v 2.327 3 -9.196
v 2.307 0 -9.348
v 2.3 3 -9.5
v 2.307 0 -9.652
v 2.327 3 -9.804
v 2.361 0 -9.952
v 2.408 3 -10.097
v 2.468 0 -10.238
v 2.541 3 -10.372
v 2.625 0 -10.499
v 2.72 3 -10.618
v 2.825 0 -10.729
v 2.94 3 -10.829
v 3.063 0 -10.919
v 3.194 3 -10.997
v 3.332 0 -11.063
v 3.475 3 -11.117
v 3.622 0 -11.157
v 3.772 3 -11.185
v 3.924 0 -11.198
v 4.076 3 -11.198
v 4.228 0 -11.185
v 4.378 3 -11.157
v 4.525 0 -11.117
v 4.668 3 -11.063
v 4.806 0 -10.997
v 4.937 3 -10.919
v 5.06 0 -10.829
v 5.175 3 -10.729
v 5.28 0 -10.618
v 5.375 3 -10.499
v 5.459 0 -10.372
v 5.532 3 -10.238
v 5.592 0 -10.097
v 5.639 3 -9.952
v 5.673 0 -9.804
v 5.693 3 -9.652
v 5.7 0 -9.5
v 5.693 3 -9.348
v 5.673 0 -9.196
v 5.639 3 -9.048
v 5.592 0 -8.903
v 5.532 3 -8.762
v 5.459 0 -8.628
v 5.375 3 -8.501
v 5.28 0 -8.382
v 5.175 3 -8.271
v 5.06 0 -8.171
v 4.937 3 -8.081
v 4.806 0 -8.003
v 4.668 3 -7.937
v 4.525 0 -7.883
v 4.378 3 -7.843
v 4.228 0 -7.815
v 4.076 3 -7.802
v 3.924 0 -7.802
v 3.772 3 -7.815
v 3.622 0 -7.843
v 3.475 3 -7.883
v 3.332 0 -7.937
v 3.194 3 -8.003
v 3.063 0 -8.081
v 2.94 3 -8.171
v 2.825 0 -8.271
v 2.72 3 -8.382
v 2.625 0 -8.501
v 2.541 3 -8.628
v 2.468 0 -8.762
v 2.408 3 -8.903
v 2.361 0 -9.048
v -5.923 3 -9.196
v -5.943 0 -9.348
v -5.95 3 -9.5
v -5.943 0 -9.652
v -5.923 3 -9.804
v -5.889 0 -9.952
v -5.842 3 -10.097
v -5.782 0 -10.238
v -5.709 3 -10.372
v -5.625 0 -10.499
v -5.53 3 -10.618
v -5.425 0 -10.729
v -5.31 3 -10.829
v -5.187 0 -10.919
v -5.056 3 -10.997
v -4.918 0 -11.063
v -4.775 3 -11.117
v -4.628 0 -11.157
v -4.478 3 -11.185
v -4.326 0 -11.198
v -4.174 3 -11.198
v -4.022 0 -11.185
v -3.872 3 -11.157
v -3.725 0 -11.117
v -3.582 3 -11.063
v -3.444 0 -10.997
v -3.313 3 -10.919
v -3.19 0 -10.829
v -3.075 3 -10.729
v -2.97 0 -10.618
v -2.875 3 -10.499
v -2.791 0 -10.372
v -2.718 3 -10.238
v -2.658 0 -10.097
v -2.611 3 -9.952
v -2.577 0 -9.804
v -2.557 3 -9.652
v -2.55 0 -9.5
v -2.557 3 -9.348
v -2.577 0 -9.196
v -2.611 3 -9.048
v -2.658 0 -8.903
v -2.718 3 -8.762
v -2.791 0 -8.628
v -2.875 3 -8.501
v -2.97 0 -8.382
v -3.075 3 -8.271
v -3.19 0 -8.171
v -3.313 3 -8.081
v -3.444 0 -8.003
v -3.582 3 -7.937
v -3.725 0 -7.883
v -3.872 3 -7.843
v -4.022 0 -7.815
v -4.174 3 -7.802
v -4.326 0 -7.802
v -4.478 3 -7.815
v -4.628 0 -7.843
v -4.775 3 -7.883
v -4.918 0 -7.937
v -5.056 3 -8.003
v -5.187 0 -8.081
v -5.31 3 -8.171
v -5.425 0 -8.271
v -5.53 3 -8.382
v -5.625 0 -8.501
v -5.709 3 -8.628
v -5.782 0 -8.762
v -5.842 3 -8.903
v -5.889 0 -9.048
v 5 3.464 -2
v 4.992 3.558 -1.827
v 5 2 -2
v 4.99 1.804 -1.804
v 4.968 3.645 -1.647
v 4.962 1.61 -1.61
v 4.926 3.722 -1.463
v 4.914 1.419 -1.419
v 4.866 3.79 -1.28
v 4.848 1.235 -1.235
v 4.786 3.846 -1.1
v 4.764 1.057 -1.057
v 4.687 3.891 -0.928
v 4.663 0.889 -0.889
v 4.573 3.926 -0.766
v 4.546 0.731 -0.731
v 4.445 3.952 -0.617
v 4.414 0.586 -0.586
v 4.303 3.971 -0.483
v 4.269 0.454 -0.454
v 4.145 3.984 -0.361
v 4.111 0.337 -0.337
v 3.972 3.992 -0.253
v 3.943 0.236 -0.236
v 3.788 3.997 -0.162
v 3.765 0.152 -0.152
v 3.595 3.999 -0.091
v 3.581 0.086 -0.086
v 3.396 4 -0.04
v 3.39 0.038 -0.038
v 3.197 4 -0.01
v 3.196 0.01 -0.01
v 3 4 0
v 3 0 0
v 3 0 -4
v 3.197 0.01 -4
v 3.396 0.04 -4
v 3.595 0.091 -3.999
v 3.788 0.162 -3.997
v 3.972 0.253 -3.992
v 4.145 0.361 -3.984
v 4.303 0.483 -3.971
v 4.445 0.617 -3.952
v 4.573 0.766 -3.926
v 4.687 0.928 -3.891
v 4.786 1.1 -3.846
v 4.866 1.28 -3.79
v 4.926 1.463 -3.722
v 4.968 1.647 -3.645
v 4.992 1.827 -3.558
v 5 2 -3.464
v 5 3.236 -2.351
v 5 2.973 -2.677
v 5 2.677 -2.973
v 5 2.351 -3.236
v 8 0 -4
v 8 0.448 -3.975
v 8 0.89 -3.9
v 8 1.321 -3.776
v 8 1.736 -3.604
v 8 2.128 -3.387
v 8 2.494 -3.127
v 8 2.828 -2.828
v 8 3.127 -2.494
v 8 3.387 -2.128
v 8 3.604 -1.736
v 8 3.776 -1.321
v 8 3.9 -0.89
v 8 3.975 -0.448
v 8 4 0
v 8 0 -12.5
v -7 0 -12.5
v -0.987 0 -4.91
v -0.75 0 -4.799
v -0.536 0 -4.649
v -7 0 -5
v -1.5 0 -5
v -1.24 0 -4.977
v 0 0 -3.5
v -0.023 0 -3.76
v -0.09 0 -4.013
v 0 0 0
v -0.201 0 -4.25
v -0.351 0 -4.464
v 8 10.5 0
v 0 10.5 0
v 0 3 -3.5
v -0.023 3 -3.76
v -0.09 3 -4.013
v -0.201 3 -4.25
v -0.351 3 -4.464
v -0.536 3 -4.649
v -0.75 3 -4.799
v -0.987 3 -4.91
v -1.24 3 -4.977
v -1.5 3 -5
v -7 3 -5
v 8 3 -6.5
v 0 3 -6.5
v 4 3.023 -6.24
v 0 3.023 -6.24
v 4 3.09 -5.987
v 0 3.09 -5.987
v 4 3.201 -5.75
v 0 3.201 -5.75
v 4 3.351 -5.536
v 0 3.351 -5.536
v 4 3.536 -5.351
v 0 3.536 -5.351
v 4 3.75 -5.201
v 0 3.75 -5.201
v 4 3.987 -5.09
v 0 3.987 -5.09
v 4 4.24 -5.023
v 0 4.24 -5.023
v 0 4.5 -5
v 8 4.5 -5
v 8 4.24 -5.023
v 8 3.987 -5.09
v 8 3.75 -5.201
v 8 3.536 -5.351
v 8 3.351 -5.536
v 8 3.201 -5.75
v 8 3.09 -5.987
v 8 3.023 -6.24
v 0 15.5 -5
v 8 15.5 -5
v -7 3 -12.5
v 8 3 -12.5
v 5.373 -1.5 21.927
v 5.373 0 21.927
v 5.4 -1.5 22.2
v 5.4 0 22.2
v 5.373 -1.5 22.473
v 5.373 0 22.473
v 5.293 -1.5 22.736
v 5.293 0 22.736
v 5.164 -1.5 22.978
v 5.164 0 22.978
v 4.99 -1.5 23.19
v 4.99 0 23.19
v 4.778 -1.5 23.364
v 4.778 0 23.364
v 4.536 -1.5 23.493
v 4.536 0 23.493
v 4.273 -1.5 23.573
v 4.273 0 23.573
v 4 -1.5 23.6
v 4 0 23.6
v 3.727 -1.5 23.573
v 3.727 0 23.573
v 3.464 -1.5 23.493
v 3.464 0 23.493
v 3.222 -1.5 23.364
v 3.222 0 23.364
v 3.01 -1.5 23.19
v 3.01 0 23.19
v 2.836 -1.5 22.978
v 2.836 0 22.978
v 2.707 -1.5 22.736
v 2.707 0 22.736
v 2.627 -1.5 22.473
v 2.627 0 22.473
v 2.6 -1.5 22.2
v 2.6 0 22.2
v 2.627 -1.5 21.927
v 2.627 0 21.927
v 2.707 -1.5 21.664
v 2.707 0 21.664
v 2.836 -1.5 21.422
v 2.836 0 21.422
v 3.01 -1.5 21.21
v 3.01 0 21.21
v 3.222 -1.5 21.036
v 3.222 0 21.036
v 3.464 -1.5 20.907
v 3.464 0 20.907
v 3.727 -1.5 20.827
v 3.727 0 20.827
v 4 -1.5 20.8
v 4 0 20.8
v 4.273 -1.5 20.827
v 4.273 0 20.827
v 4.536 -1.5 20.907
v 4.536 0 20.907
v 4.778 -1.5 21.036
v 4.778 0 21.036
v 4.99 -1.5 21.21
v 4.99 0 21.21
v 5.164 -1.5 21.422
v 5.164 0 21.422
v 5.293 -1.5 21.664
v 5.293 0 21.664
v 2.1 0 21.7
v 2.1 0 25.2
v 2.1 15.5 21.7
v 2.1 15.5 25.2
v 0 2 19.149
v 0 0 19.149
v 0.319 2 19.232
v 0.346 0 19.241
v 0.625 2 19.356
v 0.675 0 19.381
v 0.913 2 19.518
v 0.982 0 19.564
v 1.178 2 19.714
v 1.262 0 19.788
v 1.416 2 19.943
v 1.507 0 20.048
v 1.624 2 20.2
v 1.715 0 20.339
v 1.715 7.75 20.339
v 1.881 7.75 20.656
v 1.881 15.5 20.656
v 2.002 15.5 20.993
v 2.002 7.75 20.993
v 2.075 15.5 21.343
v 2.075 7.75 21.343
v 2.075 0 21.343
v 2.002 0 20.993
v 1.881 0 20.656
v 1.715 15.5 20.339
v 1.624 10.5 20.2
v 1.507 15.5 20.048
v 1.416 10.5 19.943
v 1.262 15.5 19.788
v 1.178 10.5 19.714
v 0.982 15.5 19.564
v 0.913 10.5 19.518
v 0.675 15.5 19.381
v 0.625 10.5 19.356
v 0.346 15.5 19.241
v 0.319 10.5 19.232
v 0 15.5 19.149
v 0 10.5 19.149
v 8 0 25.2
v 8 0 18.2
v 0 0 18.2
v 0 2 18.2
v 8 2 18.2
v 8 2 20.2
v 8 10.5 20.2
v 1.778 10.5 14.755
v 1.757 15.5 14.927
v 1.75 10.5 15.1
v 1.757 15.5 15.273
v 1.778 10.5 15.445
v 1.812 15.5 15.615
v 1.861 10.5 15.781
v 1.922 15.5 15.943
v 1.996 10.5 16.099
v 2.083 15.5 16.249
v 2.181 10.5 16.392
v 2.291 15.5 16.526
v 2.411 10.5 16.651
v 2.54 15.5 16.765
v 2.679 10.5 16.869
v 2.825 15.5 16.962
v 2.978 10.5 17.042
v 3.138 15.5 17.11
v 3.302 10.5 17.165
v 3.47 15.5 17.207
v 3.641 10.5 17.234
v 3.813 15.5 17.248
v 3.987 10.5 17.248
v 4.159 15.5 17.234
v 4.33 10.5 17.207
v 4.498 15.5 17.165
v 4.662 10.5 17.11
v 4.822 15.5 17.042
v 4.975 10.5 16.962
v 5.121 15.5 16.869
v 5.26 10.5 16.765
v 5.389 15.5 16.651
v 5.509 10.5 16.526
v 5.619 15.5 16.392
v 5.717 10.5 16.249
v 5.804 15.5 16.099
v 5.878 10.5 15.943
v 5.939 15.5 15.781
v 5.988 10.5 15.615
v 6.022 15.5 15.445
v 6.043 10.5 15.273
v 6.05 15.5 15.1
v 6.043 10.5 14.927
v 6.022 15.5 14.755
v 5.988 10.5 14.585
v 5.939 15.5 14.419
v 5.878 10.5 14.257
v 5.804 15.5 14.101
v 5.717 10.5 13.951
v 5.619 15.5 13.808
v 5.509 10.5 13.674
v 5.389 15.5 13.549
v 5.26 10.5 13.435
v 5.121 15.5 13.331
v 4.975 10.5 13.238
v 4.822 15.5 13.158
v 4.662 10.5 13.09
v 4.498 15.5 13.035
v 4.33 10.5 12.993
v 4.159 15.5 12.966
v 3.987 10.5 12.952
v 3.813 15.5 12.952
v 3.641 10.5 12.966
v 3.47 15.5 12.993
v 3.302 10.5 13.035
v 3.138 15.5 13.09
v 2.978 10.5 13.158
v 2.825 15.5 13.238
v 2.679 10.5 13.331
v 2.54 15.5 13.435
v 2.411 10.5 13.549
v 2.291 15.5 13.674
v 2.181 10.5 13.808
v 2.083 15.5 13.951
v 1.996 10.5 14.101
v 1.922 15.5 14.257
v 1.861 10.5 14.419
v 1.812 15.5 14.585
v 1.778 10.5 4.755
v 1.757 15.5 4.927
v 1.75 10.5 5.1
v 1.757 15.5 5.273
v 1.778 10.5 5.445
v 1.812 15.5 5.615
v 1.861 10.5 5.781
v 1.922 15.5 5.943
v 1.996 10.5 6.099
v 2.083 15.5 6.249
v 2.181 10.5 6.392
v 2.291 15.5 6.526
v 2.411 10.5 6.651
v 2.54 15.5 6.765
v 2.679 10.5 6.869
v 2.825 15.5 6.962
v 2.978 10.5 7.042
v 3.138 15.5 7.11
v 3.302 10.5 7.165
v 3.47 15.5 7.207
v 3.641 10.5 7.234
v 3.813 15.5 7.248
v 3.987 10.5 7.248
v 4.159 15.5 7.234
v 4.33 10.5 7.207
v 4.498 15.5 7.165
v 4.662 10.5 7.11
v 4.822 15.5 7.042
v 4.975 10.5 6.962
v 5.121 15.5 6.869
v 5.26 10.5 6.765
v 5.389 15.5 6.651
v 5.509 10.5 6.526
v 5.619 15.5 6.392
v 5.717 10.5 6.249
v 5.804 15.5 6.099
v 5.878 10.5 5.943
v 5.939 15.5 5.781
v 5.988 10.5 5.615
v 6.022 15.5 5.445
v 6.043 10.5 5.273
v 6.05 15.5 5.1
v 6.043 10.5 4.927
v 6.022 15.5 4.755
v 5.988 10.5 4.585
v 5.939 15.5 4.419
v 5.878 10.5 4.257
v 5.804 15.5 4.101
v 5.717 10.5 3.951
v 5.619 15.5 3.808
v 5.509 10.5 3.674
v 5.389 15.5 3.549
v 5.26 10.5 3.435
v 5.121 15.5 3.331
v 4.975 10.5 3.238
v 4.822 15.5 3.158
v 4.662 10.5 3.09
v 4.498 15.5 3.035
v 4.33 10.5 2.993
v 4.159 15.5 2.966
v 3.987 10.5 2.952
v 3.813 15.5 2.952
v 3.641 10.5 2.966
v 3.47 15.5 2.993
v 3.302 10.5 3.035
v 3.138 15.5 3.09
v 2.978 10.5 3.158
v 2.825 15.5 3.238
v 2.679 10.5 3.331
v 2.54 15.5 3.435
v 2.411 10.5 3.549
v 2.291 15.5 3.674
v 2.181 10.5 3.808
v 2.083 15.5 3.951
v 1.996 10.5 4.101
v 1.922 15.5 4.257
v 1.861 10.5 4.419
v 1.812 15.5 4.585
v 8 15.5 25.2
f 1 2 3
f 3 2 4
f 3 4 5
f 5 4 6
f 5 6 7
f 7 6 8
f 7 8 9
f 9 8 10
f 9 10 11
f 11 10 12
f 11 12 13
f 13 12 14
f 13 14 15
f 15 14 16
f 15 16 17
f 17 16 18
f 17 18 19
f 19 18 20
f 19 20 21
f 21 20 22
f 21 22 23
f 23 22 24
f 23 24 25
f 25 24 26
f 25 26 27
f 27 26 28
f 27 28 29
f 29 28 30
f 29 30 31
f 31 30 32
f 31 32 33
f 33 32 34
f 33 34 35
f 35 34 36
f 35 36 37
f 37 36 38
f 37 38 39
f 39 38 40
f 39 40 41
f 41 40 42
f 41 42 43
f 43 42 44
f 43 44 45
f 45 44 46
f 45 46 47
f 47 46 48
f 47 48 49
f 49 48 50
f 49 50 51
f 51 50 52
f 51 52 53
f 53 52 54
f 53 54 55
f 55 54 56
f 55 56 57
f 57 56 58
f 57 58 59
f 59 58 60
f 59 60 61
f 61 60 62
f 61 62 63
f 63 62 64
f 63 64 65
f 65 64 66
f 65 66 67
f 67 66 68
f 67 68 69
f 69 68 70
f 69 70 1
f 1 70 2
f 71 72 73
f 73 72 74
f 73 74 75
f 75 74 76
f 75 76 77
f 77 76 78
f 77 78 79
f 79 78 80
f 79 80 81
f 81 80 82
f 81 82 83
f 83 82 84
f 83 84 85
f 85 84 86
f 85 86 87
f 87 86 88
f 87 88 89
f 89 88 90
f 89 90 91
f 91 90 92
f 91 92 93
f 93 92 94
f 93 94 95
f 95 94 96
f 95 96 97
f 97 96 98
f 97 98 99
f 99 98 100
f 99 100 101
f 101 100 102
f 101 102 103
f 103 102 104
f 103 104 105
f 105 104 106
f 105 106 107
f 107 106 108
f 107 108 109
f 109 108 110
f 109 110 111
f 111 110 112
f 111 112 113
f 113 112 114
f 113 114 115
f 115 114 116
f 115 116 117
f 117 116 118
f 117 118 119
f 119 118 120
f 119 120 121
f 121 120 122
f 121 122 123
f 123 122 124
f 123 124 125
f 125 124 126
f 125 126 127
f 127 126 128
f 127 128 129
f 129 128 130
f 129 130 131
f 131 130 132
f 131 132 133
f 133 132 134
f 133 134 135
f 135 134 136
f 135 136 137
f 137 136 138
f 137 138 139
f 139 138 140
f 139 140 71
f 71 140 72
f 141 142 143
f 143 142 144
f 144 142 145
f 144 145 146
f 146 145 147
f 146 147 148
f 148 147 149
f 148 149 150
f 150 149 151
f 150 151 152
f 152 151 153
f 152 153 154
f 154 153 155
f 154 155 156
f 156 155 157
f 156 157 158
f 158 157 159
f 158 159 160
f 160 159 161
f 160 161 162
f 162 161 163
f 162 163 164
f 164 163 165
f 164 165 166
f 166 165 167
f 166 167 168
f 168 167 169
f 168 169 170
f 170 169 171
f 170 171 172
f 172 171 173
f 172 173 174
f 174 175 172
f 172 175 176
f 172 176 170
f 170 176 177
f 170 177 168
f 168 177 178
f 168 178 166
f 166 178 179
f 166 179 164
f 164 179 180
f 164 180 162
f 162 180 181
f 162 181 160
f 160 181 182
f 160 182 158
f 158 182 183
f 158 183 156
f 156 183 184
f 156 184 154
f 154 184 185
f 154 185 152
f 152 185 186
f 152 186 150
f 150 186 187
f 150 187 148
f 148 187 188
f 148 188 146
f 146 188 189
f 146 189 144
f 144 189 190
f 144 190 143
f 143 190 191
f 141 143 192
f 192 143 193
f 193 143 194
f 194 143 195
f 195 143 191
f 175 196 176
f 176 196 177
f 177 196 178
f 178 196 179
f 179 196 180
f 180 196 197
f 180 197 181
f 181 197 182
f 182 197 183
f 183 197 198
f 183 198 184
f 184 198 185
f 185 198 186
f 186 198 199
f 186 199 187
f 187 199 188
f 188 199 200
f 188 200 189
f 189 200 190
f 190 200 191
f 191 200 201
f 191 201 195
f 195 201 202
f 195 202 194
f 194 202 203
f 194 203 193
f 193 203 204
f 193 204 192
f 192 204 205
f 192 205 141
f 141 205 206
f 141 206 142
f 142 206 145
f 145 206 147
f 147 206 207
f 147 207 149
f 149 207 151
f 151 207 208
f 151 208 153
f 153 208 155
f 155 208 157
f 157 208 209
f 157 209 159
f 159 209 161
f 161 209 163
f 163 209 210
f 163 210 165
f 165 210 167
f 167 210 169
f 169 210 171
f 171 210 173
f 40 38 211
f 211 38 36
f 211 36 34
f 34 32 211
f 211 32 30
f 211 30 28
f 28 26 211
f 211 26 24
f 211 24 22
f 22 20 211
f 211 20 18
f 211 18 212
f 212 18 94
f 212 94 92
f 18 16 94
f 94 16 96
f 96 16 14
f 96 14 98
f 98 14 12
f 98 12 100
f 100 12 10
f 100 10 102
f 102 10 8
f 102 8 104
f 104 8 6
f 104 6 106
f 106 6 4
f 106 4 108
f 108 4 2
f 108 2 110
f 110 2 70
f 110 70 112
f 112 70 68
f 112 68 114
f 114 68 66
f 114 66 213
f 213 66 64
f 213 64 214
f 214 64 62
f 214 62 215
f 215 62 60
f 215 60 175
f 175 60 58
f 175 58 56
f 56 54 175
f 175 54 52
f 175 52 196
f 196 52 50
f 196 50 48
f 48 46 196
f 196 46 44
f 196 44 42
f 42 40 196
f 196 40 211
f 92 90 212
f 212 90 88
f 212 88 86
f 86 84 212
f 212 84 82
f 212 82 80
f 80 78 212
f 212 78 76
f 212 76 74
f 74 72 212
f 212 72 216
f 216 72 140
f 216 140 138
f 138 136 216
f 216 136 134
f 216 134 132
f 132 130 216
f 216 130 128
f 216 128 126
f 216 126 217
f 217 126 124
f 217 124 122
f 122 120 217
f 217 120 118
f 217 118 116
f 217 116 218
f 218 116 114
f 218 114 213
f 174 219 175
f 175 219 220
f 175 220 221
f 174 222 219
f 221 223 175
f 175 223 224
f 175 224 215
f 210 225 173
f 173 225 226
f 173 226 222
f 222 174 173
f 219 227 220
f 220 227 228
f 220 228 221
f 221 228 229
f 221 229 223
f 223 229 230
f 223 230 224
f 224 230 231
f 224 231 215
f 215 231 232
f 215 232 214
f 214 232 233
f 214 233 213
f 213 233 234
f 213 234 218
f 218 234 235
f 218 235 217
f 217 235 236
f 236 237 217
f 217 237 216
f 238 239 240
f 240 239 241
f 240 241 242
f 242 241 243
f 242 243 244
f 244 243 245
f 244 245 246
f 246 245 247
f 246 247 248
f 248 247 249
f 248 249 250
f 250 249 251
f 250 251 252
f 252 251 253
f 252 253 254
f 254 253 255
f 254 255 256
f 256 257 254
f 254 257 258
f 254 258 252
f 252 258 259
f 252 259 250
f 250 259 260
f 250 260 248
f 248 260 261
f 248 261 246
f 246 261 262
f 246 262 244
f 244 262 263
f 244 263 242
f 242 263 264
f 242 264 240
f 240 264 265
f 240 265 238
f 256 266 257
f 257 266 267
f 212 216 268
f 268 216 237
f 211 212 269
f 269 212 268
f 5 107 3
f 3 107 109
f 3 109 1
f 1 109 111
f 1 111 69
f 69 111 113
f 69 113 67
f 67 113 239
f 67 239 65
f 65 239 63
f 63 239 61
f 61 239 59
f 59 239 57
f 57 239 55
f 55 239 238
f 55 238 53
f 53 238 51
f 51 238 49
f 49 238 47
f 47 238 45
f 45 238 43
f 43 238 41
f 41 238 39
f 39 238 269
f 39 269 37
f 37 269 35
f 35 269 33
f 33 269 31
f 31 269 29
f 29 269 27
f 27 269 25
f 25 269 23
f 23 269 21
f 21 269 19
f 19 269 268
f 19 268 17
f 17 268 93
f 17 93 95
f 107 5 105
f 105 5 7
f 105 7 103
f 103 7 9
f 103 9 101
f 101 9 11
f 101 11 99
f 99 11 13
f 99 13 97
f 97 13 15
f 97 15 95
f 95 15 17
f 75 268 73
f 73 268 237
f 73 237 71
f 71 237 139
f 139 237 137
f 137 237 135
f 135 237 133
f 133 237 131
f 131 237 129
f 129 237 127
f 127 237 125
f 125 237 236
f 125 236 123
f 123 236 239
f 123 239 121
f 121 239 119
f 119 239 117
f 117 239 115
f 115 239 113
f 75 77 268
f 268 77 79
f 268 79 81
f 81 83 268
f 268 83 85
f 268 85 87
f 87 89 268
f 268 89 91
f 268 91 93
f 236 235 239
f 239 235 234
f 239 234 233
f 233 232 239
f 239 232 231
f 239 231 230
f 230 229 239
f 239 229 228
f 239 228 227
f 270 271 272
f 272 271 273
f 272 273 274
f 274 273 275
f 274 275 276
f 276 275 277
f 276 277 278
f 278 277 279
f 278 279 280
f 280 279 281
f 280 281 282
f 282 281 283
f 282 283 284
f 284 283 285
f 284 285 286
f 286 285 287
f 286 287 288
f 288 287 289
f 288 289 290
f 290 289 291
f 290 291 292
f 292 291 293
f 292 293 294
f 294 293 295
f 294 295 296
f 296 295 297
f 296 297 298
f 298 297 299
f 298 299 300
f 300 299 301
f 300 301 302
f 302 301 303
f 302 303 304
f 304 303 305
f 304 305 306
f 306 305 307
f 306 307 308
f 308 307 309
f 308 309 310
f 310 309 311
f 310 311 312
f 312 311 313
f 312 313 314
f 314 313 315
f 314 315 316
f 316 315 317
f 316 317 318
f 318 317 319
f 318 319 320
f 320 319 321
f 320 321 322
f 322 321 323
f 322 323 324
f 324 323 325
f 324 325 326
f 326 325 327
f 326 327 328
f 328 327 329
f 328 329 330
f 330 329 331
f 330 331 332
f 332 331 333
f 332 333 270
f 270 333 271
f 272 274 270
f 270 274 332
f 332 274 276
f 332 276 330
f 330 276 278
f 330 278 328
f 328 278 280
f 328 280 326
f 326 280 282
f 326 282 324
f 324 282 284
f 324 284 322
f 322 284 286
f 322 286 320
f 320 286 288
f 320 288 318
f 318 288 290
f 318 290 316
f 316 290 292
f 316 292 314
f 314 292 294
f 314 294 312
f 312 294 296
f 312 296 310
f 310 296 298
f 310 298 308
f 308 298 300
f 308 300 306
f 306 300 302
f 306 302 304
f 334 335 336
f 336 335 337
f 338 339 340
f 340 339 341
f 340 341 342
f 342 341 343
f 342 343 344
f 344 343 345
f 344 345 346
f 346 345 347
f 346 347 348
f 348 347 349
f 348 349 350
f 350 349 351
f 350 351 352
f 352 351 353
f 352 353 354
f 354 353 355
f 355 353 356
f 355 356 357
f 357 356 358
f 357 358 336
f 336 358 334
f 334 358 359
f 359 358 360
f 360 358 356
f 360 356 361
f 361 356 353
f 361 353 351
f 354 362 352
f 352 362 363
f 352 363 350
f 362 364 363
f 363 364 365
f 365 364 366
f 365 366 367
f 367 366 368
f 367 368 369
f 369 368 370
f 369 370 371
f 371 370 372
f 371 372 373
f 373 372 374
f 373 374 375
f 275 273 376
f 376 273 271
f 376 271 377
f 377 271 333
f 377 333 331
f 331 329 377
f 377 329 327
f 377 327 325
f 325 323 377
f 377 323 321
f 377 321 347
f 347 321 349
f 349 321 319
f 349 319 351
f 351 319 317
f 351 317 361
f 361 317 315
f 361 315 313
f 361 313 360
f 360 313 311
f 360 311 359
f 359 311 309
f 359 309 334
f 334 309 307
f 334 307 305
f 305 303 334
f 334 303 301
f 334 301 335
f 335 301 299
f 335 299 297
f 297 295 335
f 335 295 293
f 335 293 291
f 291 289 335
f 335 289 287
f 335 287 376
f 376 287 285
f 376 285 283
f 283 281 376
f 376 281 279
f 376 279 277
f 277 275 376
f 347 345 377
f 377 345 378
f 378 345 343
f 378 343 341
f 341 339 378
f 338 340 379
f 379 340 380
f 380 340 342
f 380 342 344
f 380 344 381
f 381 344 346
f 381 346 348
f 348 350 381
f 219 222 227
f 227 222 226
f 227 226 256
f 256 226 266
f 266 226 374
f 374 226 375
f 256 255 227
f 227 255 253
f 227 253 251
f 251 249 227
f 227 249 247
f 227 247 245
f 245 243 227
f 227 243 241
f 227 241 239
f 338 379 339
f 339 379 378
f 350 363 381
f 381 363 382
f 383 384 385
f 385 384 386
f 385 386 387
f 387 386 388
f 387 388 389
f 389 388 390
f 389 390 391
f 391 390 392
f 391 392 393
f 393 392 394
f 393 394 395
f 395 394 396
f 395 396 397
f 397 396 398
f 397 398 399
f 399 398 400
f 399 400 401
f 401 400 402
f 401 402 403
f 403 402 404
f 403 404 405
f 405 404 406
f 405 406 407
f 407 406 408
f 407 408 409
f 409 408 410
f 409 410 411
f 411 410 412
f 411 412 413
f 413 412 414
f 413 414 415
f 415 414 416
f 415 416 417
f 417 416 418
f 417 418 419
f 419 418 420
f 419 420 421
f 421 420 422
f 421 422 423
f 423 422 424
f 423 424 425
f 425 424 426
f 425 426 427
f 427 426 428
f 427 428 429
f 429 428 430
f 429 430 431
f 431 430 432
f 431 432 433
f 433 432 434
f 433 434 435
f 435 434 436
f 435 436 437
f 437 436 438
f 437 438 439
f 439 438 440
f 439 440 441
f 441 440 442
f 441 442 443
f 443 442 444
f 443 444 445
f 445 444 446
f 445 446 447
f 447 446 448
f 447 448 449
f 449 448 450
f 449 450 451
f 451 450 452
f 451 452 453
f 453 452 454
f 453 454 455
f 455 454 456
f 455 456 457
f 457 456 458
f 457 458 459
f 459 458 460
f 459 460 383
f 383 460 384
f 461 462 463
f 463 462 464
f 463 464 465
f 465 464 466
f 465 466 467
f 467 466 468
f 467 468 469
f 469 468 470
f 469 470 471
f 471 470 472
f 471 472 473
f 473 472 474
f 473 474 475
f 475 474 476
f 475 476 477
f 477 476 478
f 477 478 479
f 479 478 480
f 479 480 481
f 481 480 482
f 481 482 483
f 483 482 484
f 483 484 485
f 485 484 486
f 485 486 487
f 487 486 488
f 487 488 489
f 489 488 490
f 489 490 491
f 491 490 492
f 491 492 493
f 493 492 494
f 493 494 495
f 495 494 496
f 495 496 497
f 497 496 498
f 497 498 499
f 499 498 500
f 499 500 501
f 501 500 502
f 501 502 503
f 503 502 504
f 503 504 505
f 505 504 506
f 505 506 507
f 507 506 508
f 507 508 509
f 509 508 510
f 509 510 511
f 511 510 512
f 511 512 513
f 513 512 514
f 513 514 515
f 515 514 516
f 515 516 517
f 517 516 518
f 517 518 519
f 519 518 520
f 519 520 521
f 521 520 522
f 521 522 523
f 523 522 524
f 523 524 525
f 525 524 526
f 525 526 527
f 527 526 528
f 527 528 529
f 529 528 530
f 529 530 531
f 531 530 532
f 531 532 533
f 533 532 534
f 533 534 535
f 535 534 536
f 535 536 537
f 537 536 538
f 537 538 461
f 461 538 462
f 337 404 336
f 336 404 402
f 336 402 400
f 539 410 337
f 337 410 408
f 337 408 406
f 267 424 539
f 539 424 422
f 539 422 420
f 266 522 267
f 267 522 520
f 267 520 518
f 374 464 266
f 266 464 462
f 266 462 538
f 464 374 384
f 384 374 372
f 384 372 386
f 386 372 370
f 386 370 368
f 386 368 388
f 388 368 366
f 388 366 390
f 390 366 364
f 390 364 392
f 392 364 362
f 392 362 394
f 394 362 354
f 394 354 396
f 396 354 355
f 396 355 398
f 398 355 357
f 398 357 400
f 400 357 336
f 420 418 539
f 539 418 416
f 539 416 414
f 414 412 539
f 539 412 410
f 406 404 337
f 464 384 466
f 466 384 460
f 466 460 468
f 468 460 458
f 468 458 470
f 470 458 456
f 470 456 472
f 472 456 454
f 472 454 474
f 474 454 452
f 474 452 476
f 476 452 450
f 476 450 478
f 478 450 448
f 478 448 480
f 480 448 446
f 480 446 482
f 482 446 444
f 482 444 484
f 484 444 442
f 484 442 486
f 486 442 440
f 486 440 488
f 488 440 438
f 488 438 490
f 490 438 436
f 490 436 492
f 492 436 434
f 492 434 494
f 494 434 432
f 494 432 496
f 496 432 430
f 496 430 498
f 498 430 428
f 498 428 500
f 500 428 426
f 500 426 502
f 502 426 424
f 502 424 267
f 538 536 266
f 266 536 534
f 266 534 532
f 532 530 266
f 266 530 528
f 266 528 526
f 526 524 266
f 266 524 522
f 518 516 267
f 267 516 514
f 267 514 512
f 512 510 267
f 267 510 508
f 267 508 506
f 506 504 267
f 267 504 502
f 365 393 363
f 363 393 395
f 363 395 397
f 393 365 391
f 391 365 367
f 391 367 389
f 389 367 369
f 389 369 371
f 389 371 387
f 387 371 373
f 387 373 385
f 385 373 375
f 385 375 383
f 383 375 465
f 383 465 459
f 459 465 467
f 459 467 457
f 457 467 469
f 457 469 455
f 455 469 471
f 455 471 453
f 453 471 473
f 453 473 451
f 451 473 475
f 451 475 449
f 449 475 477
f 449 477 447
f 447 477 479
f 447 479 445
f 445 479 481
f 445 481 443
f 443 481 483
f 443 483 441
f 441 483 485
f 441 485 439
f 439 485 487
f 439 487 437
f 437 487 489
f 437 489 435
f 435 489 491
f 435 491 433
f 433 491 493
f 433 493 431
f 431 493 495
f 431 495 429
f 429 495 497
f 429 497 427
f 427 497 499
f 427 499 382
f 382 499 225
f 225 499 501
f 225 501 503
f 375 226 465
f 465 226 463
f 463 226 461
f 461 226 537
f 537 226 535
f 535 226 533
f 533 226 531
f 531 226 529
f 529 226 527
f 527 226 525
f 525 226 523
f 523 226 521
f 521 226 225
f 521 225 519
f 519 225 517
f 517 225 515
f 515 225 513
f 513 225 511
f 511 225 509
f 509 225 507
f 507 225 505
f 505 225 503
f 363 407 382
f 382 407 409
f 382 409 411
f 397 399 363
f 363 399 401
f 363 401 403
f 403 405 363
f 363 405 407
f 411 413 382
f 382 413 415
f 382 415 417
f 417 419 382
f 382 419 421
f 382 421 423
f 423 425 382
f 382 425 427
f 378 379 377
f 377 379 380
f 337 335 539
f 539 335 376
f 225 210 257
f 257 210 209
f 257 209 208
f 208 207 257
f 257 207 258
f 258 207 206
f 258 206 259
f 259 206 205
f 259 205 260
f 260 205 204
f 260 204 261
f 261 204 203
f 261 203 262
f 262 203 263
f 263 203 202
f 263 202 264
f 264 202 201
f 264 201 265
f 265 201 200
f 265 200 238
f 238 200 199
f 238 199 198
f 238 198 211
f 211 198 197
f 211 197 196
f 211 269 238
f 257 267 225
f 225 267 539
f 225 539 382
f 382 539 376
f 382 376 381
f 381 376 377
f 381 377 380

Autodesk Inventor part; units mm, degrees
ref_plane "YZ Plane" through (0, 0, 0) normal (1, 0, 0) x (0, 1, 0)
ref_plane "XZ Plane" through (0, 0, 0) normal (0, 1, 0) x (-1, 0, 0)
ref_plane "XY Plane" through (0, 0, 0) normal (0, 0, 1) x (1, 0, 0)
sketch "Sketch1" plane through (0, 0, 0) normal (1, 0, 0) x (0, 1, 0)
  line L0 (0, 0) -> (15.5, 0)
  line L1 (15.5, 0) -> (15.5, -5)
  line L2 (15.5, -5) -> (0, -5)
  line L3 (0, -5) -> (0, 0)
  line L4 (15.5, 0) -> (10.5, 0)
  line L5 (10.5, 0) -> (10.5, 20.2)
  line L6 (10.5, 20.2) -> (15.5, 20.2)
  line L7 (15.5, 20.2) -> (15.5, 0)
  line L8 (15.5, 20.2) -> (0, 20.2)
  line L9 (0, 20.2) -> (0, 25.2)
  line L10 (0, 25.2) -> (15.5, 25.2)
  line L11 (15.5, 25.2) -> (15.5, 20.2)
  line L12 (2, 20.2) -> (0, 20.2)
  line L13 (0, 20.2) -> (0, 18.2)
  line L14 (0, 18.2) -> (2, 18.2)
  line L15 (2, 18.2) -> (2, 20.2)
  dimension "d0" = 5
  dimension "d2" = 5
  dimension "d3" = 20.2
  dimension "d4" = 5
  dimension "d16" = 10.5
  dimension "d23" = 2
  dimension "d24" = 2
extrude "Extrusion1" add sketch "Sketch1" along normal blind 8
sketch "Sketch2" plane through (0, 15.5, 25.2) normal (0, 1, 0) x (1, 0, 0)
  line L0 (0, 0) -> (8, 0) construction
  line L1 (3.9, 0) -> (3.9, 30.2) construction
  line L2 (0, 30.2) -> (8, 30.2) construction
  line L3 (0, 30.2) -> (0, 0) construction
  line L4 (0, 30.2) -> (0, 0) construction
  line L5 (0, 0) -> (8, 0) construction
  line L6 (8, 30.2) -> (8, 0) construction
  line L7 (0, 30.2) -> (8, 30.2) construction
  line L8 (3.9, 15.1) -> (1.5202, 15.1)
  point P0 (0, 25.2)
  point P1 (3.9, 10.1)
  point P2 (3.9, 20.1)
  dimension "d7" = 3.9
  dimension "d8" = 10
hole "Hole1" at (3.9, 15.5, 15.1) at (3.9, 15.5, 5.1) direction (0, -1, 0) diameter 4.3 depth 10 tip angle 118
sketch "Sketch4" plane through (0, 15.5, 25.2) normal (0, 1, 0) x (1, 0, 0)
  circle A0 centre (3.9, 10.1) radius 2.15 projected
  circle A1 centre (3.9, 20.1) radius 2.15 projected
  line L0 (0, 30.2) -> (0, 0) projected
  line L1 (0, 0) -> (8, 0) projected
  line L2 (8, 30.2) -> (8, 0) projected
  line L3 (0, 30.2) -> (8, 30.2) projected
  line L4 (0, 0) -> (8, 0) projected
  circle A2 centre (-0.5, 3.5) radius 2.6
  line L5 (2.1, 3.5) -> (2.1, 0)
  point P0 (0, 25.2)
  point P1 (0, 6.0515)
  point P2 (0, 0.9485)
  point P3 (2.1, 0)
  dimension "d19" = 5.2
  dimension "d20" = 0.5
  dimension "d63" = 3.5
extrude "Extrusion2" cut sketch "Sketch4" against normal through all contours A2 L0 | A2 L5 L1 L0 picked at (0.1891, 2.7097)
sketch "Sketch5" plane through (0, 0, 18.2) normal (0, -1, 0) x (1, 0, 0)
  arc A0 (0, 0.9485) -> (2.1, 3.5) centre (-0.5, 3.5) ccw projected
  line L0 (0, 0.9485) -> (0, 0) projected
  line L1 (0, 0) -> (8, 0) projected
  line L2 (8, 7) -> (8, 0) projected
  line L3 (2.1, 7) -> (8, 7) projected
  line L4 (2.1, 7) -> (2.1, 3.5) projected
  circle A1 centre (4, 4) radius 1.4
  point P0 (0, -18.2)
  point P1 (8, 3.5)
  dimension "d25" = 2.8
  dimension "d26" = 4
  dimension "d28" = 3
extrude "Extrusion3" add sketch "Sketch5" along normal blind 1.5 contours A1
sketch "Sketch6" plane through (0, 0, -5) normal (0, -1, 0) x (1, 0, 0)
  line L0 (0, 5) -> (0, 0) projected
  line L1 (0, 0) -> (8, 0) projected
  line L2 (8, 5) -> (8, 0) projected
  line L3 (0, 5) -> (8, 5) projected
  line L4 (0, 5) -> (8, 5) projected
  line L5 (0, 0) -> (0, 24.1485) projected
  line L6 (8, 0) -> (-7, 0)
  line L7 (-7, 0) -> (-7, -7.5)
  line L8 (-7, -7.5) -> (8, -7.5)
  line L9 (8, -7.5) -> (8, 0)
  dimension "d59" = 7.5
  dimension "d60" = 15
extrude "Extrusion4" add sketch "Sketch6" against normal blind 3 contours L1 L9 L8 L7 L6
fillet "Fillet1" radius 1.5 2 edges at (4, 3, -5) (0, 1.5, -5)
sketch "Sketch9" plane through (8, 0, 0) normal (1, 0, 0) x (0, 0, -1)
  line L0 (0, 0) -> (3.5, 0) projected
  circle A0 centre (0, 0) radius 4
  dimension "d64" = 8
extrude "Extrusion5" cut sketch "Sketch9" against normal blind 3
fillet "Fillet2" radius 2 2 edges at (5, 0, -2) (5, 2, 0)
sketch "Sketch10" plane through (-7, 0, -12.5) normal (0, -1, 0) x (1, 0, 0)
  line L0 (10, 12.5) -> (10, 8.5) projected
  line L1 (7, 12.5) -> (10, 12.5) projected
  line L2 (7, 12.5) -> (7, 9) projected
  arc A0 (5.5, 7.5) -> (7, 9) centre (5.5, 9) ccw projected
  line L3 (5.5, 7.5) -> (0, 7.5) projected
  line L4 (0, 7.5) -> (0, 0) projected
  line L5 (0, 0) -> (15, 0) projected
  line L6 (15, 8.5) -> (15, 0) projected
  line L7 (15, 8.5) -> (10, 8.5) projected
  line L8 (15, 0) -> (0, 0) construction
  line L9 (0, 7.5) -> (5.5, 7.5) construction
  point P0 (11, 3)
  point P1 (2.75, 3)
  dimension "d76" = 3
  dimension "d77" = 4
hole "Hole4" at (4, 0, -9.5) at (-4.25, 0, -9.5) direction (0, 1, 0) diameter 3.4 depth 10 tip angle 118
properties part number "Servo mount"
